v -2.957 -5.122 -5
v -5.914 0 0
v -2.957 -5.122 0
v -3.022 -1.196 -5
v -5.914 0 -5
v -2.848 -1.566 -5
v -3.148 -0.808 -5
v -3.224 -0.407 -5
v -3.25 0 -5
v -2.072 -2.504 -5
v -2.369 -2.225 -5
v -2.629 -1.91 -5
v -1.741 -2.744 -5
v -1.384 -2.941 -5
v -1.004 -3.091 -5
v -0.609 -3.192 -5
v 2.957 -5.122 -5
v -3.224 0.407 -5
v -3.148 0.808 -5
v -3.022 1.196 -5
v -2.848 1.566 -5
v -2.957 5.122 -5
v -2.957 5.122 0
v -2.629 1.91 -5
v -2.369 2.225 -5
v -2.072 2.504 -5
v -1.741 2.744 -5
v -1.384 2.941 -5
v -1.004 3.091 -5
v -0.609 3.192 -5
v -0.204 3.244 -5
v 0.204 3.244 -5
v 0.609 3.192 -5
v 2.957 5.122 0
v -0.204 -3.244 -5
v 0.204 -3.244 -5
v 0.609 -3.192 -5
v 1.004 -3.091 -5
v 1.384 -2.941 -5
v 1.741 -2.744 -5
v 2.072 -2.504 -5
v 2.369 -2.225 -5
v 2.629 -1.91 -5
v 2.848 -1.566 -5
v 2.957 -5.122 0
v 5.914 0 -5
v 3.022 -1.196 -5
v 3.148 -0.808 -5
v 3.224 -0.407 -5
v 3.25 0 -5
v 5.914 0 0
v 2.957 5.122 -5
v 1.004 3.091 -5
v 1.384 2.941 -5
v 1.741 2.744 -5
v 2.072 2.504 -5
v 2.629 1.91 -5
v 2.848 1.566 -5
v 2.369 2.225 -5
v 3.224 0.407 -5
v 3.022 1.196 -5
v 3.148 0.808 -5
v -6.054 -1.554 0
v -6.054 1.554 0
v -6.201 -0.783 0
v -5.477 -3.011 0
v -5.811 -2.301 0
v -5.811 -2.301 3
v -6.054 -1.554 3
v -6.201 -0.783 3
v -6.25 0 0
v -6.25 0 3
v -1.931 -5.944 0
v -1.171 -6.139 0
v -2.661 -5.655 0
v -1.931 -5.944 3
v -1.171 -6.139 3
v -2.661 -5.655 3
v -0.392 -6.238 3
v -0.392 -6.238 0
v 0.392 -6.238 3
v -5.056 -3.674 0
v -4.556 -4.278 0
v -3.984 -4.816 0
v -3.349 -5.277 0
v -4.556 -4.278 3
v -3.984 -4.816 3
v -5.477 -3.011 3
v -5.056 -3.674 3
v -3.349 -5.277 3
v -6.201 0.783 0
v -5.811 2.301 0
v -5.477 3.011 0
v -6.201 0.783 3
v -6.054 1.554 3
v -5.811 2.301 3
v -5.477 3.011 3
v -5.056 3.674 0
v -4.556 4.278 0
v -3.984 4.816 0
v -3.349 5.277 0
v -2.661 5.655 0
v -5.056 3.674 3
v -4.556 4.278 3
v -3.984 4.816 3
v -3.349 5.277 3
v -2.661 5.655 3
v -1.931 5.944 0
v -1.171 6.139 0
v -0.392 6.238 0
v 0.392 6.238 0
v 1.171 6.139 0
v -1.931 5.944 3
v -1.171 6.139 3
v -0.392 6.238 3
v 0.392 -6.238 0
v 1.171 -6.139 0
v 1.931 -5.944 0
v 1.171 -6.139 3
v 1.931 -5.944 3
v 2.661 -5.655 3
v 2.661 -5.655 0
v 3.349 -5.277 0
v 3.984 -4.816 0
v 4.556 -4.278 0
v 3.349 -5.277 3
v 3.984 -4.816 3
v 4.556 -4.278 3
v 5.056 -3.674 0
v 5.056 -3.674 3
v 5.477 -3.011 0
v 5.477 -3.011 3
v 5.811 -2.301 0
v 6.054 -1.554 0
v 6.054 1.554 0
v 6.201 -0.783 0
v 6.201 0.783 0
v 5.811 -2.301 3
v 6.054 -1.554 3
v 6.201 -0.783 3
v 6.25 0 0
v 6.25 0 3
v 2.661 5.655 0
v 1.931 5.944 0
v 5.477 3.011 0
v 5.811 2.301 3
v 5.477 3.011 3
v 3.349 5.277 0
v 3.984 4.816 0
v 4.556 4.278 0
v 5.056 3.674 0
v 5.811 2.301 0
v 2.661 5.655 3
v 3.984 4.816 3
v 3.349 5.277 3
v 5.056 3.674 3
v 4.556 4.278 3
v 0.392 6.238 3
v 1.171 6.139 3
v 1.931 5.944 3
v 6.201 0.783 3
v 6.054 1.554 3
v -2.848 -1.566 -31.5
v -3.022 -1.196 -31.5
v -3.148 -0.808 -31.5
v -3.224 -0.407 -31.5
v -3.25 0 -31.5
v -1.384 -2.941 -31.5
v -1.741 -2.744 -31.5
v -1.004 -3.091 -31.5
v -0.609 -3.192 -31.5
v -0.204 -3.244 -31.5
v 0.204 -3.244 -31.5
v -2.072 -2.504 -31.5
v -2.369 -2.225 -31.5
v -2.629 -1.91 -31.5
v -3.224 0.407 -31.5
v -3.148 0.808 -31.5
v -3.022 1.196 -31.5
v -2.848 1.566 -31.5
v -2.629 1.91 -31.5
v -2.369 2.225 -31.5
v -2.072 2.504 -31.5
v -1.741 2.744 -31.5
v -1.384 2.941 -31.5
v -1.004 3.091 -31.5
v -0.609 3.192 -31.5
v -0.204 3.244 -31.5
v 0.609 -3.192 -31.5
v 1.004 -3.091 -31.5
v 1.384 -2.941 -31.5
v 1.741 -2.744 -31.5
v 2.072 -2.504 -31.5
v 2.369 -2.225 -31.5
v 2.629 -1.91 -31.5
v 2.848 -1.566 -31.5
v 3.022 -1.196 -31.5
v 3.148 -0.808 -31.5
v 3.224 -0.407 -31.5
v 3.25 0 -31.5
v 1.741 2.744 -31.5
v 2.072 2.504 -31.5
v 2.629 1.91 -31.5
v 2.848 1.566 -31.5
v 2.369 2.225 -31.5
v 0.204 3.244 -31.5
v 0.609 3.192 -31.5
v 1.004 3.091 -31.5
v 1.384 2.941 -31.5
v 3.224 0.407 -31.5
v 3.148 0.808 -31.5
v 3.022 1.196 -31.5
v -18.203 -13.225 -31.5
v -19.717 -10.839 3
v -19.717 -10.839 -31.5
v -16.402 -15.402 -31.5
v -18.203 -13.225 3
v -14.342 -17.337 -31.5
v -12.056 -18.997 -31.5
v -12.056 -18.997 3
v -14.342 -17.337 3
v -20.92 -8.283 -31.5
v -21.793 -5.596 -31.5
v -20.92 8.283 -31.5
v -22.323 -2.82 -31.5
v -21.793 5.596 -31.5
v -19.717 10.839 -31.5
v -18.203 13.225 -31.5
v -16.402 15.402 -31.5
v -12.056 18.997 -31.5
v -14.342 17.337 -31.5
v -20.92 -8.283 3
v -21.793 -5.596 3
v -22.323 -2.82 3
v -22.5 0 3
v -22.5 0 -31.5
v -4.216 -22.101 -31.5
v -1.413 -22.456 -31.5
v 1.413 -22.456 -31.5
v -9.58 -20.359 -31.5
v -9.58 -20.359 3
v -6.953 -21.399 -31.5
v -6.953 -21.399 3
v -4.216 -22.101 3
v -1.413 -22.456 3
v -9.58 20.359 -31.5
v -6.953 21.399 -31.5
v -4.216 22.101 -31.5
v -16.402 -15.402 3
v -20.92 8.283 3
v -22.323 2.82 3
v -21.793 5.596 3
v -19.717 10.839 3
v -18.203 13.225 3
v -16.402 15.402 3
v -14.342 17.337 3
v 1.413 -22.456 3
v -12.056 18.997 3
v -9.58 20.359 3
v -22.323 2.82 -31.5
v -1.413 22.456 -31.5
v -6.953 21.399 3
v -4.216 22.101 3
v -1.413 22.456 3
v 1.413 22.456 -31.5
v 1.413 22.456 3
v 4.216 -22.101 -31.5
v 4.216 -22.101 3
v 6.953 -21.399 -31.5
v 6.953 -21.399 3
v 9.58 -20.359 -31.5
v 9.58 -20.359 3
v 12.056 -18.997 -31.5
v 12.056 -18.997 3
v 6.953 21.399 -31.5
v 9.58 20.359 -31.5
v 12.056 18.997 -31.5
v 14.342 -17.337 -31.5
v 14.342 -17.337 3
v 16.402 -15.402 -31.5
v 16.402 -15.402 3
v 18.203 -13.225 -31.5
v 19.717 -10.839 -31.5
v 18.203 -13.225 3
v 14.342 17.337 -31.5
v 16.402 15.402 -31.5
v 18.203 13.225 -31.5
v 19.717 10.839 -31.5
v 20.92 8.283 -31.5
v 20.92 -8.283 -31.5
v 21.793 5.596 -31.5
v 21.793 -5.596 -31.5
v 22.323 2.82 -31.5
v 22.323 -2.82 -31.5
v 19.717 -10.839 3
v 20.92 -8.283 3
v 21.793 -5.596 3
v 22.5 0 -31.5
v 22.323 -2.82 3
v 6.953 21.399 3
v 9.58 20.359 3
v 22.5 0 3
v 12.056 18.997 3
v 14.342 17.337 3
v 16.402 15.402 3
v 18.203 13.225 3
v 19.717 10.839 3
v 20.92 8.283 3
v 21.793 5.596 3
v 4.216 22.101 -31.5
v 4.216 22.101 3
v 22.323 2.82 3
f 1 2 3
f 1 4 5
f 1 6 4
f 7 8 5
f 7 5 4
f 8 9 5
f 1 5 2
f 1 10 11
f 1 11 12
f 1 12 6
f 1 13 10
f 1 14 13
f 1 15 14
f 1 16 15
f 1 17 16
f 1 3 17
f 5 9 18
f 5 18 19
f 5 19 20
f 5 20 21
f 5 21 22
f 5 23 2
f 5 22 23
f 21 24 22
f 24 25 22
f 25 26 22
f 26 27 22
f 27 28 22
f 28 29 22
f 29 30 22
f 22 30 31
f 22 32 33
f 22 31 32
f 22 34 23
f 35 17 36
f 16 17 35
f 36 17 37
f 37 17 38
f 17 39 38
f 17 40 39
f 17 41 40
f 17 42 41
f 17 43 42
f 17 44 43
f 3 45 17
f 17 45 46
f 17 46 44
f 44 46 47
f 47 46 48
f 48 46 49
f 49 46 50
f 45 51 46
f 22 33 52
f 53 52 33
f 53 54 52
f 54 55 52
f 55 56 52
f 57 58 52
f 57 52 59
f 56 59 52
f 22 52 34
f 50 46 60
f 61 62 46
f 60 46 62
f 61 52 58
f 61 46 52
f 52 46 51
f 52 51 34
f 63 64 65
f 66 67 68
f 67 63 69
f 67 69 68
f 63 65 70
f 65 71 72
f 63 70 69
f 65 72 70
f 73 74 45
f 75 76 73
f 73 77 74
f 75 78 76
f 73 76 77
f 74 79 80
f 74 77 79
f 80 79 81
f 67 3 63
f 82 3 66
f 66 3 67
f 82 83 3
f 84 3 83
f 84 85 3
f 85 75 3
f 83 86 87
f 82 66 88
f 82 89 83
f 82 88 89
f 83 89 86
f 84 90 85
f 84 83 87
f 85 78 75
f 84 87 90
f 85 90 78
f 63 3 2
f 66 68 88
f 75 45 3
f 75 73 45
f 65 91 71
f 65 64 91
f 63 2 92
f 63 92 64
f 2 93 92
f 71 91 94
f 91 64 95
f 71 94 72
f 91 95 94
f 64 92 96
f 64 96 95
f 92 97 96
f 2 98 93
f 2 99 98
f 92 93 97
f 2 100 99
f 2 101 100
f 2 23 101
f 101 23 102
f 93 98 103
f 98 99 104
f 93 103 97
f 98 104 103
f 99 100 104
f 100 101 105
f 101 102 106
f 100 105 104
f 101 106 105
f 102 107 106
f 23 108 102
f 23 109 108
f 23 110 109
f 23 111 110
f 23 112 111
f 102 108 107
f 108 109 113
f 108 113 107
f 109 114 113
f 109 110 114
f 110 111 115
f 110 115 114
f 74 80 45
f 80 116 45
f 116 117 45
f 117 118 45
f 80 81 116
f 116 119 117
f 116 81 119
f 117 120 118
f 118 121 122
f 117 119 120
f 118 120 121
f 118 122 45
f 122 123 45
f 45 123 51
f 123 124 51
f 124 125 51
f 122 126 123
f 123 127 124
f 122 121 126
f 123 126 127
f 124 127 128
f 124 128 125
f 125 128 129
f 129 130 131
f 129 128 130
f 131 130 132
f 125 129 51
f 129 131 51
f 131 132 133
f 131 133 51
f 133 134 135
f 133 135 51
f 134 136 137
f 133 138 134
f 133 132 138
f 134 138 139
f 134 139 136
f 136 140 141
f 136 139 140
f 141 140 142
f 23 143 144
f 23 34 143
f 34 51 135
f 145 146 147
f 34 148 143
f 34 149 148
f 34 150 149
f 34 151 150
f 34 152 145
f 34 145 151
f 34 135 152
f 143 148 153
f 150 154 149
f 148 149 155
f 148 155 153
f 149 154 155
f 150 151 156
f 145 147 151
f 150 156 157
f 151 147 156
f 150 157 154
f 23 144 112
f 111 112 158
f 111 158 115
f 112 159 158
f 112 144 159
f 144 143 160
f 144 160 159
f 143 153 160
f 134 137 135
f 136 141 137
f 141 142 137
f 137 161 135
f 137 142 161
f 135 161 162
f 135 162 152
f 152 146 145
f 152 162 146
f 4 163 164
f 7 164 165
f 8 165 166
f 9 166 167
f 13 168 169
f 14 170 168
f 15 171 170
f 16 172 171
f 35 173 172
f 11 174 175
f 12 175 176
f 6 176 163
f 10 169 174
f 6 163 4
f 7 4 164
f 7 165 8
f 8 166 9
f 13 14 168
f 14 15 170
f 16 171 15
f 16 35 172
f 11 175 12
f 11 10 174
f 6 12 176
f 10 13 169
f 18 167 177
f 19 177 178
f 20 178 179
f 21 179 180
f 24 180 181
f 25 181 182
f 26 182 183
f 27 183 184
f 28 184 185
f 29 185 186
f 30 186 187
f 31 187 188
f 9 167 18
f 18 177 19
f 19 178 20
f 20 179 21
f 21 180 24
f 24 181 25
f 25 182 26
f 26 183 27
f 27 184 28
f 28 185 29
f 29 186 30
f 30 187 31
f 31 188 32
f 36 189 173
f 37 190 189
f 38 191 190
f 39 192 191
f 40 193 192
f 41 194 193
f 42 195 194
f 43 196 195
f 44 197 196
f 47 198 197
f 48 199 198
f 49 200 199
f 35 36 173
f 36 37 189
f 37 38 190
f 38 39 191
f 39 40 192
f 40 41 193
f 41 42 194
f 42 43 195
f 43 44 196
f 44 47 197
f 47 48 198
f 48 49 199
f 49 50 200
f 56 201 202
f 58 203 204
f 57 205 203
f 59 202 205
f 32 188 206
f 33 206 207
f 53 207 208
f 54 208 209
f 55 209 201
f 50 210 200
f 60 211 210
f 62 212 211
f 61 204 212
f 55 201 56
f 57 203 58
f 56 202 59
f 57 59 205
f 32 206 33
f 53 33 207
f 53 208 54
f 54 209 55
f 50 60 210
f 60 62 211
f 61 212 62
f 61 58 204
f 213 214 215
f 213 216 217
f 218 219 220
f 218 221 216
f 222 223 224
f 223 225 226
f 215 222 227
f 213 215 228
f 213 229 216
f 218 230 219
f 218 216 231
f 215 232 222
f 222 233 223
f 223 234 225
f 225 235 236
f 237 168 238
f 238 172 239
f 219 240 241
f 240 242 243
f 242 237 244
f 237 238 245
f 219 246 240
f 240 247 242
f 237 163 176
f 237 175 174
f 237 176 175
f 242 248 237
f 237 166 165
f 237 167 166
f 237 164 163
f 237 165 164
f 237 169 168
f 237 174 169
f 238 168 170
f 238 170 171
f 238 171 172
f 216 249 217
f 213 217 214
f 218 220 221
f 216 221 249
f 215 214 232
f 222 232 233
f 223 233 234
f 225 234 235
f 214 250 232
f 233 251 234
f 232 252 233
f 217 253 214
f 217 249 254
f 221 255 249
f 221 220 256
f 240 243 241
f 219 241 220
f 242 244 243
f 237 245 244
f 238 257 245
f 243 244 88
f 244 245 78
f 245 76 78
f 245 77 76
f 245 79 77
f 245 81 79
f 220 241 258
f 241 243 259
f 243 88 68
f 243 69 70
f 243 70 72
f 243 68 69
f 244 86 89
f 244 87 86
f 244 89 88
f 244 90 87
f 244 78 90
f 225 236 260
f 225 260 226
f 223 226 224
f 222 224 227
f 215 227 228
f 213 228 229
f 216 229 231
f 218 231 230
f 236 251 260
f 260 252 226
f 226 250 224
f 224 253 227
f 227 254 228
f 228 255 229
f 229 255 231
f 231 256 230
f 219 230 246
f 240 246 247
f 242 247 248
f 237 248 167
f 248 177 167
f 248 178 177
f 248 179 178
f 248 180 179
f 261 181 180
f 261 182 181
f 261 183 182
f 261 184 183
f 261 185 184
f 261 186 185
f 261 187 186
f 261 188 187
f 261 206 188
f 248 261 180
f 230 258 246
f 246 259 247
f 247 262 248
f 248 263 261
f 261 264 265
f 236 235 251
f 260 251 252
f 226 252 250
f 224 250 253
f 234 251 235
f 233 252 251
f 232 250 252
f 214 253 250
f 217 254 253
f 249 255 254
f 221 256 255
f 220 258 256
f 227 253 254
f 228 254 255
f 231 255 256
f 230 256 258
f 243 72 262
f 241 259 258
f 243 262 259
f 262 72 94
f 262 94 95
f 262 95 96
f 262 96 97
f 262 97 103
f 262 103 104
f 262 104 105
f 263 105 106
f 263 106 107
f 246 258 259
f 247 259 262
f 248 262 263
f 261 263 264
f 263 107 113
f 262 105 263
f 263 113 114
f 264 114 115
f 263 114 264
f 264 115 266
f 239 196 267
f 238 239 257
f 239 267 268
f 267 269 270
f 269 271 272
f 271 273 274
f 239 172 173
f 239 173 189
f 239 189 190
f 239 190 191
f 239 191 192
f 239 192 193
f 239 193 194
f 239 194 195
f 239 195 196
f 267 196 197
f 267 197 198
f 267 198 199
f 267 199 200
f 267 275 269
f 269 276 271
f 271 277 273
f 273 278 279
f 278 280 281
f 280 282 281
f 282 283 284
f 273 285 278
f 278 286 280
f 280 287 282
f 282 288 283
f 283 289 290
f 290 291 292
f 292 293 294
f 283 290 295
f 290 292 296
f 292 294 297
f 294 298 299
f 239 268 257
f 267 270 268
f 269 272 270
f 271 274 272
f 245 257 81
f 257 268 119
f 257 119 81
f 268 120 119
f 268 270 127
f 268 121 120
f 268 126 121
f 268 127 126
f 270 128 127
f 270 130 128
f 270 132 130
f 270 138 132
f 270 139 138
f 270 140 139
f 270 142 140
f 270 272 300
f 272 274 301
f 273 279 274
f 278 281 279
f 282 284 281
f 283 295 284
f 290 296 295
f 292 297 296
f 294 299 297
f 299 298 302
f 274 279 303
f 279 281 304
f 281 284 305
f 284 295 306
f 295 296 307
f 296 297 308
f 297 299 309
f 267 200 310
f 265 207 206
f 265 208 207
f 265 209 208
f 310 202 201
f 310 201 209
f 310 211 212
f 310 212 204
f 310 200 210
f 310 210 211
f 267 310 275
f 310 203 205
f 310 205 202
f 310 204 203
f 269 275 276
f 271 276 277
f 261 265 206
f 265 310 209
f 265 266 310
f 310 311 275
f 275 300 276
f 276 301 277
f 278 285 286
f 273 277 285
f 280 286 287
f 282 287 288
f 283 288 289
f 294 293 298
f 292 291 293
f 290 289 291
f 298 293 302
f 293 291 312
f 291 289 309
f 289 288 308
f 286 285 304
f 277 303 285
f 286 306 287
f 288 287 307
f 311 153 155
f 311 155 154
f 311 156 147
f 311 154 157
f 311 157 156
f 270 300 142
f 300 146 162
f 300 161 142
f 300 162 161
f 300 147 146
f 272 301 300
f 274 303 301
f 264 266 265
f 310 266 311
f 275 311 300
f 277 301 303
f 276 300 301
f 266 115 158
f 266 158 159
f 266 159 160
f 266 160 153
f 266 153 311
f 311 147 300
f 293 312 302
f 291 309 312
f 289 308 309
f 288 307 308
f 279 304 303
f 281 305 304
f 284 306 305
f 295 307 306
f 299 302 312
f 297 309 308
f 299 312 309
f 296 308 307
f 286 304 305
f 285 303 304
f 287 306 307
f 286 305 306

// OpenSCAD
$fn = 50;


difference() {
	union() {
		translate(v = [0, 0, -31.5000000000]) {
			cylinder(h = 34.5000000000, r = 22.5000000000);
		}
	}
	union() {
		translate(v = [0, 0, 0]) {
			rotate(a = [0, 0, 0]) {
				difference() {
					union() {
						translate(v = [0, 0, -5]) {
							linear_extrude(height = 5) {
								polygon(points = [[5.9142500000, 0.0000000000], [2.9571250000, 5.1218907443], [-2.9571250000, 5.1218907443], [-5.9142500000, 0.0000000000], [-2.9571250000, -5.1218907443], [2.9571250000, -5.1218907443]]);
							}
						}
					}
					union();
				}
			}
		}
		#cylinder(h = 3, r = 6.2500000000);
		#translate(v = [0, 0, -100.0000000000]) {
			cylinder(h = 200, r = 3.2500000000);
		}
	}
}
